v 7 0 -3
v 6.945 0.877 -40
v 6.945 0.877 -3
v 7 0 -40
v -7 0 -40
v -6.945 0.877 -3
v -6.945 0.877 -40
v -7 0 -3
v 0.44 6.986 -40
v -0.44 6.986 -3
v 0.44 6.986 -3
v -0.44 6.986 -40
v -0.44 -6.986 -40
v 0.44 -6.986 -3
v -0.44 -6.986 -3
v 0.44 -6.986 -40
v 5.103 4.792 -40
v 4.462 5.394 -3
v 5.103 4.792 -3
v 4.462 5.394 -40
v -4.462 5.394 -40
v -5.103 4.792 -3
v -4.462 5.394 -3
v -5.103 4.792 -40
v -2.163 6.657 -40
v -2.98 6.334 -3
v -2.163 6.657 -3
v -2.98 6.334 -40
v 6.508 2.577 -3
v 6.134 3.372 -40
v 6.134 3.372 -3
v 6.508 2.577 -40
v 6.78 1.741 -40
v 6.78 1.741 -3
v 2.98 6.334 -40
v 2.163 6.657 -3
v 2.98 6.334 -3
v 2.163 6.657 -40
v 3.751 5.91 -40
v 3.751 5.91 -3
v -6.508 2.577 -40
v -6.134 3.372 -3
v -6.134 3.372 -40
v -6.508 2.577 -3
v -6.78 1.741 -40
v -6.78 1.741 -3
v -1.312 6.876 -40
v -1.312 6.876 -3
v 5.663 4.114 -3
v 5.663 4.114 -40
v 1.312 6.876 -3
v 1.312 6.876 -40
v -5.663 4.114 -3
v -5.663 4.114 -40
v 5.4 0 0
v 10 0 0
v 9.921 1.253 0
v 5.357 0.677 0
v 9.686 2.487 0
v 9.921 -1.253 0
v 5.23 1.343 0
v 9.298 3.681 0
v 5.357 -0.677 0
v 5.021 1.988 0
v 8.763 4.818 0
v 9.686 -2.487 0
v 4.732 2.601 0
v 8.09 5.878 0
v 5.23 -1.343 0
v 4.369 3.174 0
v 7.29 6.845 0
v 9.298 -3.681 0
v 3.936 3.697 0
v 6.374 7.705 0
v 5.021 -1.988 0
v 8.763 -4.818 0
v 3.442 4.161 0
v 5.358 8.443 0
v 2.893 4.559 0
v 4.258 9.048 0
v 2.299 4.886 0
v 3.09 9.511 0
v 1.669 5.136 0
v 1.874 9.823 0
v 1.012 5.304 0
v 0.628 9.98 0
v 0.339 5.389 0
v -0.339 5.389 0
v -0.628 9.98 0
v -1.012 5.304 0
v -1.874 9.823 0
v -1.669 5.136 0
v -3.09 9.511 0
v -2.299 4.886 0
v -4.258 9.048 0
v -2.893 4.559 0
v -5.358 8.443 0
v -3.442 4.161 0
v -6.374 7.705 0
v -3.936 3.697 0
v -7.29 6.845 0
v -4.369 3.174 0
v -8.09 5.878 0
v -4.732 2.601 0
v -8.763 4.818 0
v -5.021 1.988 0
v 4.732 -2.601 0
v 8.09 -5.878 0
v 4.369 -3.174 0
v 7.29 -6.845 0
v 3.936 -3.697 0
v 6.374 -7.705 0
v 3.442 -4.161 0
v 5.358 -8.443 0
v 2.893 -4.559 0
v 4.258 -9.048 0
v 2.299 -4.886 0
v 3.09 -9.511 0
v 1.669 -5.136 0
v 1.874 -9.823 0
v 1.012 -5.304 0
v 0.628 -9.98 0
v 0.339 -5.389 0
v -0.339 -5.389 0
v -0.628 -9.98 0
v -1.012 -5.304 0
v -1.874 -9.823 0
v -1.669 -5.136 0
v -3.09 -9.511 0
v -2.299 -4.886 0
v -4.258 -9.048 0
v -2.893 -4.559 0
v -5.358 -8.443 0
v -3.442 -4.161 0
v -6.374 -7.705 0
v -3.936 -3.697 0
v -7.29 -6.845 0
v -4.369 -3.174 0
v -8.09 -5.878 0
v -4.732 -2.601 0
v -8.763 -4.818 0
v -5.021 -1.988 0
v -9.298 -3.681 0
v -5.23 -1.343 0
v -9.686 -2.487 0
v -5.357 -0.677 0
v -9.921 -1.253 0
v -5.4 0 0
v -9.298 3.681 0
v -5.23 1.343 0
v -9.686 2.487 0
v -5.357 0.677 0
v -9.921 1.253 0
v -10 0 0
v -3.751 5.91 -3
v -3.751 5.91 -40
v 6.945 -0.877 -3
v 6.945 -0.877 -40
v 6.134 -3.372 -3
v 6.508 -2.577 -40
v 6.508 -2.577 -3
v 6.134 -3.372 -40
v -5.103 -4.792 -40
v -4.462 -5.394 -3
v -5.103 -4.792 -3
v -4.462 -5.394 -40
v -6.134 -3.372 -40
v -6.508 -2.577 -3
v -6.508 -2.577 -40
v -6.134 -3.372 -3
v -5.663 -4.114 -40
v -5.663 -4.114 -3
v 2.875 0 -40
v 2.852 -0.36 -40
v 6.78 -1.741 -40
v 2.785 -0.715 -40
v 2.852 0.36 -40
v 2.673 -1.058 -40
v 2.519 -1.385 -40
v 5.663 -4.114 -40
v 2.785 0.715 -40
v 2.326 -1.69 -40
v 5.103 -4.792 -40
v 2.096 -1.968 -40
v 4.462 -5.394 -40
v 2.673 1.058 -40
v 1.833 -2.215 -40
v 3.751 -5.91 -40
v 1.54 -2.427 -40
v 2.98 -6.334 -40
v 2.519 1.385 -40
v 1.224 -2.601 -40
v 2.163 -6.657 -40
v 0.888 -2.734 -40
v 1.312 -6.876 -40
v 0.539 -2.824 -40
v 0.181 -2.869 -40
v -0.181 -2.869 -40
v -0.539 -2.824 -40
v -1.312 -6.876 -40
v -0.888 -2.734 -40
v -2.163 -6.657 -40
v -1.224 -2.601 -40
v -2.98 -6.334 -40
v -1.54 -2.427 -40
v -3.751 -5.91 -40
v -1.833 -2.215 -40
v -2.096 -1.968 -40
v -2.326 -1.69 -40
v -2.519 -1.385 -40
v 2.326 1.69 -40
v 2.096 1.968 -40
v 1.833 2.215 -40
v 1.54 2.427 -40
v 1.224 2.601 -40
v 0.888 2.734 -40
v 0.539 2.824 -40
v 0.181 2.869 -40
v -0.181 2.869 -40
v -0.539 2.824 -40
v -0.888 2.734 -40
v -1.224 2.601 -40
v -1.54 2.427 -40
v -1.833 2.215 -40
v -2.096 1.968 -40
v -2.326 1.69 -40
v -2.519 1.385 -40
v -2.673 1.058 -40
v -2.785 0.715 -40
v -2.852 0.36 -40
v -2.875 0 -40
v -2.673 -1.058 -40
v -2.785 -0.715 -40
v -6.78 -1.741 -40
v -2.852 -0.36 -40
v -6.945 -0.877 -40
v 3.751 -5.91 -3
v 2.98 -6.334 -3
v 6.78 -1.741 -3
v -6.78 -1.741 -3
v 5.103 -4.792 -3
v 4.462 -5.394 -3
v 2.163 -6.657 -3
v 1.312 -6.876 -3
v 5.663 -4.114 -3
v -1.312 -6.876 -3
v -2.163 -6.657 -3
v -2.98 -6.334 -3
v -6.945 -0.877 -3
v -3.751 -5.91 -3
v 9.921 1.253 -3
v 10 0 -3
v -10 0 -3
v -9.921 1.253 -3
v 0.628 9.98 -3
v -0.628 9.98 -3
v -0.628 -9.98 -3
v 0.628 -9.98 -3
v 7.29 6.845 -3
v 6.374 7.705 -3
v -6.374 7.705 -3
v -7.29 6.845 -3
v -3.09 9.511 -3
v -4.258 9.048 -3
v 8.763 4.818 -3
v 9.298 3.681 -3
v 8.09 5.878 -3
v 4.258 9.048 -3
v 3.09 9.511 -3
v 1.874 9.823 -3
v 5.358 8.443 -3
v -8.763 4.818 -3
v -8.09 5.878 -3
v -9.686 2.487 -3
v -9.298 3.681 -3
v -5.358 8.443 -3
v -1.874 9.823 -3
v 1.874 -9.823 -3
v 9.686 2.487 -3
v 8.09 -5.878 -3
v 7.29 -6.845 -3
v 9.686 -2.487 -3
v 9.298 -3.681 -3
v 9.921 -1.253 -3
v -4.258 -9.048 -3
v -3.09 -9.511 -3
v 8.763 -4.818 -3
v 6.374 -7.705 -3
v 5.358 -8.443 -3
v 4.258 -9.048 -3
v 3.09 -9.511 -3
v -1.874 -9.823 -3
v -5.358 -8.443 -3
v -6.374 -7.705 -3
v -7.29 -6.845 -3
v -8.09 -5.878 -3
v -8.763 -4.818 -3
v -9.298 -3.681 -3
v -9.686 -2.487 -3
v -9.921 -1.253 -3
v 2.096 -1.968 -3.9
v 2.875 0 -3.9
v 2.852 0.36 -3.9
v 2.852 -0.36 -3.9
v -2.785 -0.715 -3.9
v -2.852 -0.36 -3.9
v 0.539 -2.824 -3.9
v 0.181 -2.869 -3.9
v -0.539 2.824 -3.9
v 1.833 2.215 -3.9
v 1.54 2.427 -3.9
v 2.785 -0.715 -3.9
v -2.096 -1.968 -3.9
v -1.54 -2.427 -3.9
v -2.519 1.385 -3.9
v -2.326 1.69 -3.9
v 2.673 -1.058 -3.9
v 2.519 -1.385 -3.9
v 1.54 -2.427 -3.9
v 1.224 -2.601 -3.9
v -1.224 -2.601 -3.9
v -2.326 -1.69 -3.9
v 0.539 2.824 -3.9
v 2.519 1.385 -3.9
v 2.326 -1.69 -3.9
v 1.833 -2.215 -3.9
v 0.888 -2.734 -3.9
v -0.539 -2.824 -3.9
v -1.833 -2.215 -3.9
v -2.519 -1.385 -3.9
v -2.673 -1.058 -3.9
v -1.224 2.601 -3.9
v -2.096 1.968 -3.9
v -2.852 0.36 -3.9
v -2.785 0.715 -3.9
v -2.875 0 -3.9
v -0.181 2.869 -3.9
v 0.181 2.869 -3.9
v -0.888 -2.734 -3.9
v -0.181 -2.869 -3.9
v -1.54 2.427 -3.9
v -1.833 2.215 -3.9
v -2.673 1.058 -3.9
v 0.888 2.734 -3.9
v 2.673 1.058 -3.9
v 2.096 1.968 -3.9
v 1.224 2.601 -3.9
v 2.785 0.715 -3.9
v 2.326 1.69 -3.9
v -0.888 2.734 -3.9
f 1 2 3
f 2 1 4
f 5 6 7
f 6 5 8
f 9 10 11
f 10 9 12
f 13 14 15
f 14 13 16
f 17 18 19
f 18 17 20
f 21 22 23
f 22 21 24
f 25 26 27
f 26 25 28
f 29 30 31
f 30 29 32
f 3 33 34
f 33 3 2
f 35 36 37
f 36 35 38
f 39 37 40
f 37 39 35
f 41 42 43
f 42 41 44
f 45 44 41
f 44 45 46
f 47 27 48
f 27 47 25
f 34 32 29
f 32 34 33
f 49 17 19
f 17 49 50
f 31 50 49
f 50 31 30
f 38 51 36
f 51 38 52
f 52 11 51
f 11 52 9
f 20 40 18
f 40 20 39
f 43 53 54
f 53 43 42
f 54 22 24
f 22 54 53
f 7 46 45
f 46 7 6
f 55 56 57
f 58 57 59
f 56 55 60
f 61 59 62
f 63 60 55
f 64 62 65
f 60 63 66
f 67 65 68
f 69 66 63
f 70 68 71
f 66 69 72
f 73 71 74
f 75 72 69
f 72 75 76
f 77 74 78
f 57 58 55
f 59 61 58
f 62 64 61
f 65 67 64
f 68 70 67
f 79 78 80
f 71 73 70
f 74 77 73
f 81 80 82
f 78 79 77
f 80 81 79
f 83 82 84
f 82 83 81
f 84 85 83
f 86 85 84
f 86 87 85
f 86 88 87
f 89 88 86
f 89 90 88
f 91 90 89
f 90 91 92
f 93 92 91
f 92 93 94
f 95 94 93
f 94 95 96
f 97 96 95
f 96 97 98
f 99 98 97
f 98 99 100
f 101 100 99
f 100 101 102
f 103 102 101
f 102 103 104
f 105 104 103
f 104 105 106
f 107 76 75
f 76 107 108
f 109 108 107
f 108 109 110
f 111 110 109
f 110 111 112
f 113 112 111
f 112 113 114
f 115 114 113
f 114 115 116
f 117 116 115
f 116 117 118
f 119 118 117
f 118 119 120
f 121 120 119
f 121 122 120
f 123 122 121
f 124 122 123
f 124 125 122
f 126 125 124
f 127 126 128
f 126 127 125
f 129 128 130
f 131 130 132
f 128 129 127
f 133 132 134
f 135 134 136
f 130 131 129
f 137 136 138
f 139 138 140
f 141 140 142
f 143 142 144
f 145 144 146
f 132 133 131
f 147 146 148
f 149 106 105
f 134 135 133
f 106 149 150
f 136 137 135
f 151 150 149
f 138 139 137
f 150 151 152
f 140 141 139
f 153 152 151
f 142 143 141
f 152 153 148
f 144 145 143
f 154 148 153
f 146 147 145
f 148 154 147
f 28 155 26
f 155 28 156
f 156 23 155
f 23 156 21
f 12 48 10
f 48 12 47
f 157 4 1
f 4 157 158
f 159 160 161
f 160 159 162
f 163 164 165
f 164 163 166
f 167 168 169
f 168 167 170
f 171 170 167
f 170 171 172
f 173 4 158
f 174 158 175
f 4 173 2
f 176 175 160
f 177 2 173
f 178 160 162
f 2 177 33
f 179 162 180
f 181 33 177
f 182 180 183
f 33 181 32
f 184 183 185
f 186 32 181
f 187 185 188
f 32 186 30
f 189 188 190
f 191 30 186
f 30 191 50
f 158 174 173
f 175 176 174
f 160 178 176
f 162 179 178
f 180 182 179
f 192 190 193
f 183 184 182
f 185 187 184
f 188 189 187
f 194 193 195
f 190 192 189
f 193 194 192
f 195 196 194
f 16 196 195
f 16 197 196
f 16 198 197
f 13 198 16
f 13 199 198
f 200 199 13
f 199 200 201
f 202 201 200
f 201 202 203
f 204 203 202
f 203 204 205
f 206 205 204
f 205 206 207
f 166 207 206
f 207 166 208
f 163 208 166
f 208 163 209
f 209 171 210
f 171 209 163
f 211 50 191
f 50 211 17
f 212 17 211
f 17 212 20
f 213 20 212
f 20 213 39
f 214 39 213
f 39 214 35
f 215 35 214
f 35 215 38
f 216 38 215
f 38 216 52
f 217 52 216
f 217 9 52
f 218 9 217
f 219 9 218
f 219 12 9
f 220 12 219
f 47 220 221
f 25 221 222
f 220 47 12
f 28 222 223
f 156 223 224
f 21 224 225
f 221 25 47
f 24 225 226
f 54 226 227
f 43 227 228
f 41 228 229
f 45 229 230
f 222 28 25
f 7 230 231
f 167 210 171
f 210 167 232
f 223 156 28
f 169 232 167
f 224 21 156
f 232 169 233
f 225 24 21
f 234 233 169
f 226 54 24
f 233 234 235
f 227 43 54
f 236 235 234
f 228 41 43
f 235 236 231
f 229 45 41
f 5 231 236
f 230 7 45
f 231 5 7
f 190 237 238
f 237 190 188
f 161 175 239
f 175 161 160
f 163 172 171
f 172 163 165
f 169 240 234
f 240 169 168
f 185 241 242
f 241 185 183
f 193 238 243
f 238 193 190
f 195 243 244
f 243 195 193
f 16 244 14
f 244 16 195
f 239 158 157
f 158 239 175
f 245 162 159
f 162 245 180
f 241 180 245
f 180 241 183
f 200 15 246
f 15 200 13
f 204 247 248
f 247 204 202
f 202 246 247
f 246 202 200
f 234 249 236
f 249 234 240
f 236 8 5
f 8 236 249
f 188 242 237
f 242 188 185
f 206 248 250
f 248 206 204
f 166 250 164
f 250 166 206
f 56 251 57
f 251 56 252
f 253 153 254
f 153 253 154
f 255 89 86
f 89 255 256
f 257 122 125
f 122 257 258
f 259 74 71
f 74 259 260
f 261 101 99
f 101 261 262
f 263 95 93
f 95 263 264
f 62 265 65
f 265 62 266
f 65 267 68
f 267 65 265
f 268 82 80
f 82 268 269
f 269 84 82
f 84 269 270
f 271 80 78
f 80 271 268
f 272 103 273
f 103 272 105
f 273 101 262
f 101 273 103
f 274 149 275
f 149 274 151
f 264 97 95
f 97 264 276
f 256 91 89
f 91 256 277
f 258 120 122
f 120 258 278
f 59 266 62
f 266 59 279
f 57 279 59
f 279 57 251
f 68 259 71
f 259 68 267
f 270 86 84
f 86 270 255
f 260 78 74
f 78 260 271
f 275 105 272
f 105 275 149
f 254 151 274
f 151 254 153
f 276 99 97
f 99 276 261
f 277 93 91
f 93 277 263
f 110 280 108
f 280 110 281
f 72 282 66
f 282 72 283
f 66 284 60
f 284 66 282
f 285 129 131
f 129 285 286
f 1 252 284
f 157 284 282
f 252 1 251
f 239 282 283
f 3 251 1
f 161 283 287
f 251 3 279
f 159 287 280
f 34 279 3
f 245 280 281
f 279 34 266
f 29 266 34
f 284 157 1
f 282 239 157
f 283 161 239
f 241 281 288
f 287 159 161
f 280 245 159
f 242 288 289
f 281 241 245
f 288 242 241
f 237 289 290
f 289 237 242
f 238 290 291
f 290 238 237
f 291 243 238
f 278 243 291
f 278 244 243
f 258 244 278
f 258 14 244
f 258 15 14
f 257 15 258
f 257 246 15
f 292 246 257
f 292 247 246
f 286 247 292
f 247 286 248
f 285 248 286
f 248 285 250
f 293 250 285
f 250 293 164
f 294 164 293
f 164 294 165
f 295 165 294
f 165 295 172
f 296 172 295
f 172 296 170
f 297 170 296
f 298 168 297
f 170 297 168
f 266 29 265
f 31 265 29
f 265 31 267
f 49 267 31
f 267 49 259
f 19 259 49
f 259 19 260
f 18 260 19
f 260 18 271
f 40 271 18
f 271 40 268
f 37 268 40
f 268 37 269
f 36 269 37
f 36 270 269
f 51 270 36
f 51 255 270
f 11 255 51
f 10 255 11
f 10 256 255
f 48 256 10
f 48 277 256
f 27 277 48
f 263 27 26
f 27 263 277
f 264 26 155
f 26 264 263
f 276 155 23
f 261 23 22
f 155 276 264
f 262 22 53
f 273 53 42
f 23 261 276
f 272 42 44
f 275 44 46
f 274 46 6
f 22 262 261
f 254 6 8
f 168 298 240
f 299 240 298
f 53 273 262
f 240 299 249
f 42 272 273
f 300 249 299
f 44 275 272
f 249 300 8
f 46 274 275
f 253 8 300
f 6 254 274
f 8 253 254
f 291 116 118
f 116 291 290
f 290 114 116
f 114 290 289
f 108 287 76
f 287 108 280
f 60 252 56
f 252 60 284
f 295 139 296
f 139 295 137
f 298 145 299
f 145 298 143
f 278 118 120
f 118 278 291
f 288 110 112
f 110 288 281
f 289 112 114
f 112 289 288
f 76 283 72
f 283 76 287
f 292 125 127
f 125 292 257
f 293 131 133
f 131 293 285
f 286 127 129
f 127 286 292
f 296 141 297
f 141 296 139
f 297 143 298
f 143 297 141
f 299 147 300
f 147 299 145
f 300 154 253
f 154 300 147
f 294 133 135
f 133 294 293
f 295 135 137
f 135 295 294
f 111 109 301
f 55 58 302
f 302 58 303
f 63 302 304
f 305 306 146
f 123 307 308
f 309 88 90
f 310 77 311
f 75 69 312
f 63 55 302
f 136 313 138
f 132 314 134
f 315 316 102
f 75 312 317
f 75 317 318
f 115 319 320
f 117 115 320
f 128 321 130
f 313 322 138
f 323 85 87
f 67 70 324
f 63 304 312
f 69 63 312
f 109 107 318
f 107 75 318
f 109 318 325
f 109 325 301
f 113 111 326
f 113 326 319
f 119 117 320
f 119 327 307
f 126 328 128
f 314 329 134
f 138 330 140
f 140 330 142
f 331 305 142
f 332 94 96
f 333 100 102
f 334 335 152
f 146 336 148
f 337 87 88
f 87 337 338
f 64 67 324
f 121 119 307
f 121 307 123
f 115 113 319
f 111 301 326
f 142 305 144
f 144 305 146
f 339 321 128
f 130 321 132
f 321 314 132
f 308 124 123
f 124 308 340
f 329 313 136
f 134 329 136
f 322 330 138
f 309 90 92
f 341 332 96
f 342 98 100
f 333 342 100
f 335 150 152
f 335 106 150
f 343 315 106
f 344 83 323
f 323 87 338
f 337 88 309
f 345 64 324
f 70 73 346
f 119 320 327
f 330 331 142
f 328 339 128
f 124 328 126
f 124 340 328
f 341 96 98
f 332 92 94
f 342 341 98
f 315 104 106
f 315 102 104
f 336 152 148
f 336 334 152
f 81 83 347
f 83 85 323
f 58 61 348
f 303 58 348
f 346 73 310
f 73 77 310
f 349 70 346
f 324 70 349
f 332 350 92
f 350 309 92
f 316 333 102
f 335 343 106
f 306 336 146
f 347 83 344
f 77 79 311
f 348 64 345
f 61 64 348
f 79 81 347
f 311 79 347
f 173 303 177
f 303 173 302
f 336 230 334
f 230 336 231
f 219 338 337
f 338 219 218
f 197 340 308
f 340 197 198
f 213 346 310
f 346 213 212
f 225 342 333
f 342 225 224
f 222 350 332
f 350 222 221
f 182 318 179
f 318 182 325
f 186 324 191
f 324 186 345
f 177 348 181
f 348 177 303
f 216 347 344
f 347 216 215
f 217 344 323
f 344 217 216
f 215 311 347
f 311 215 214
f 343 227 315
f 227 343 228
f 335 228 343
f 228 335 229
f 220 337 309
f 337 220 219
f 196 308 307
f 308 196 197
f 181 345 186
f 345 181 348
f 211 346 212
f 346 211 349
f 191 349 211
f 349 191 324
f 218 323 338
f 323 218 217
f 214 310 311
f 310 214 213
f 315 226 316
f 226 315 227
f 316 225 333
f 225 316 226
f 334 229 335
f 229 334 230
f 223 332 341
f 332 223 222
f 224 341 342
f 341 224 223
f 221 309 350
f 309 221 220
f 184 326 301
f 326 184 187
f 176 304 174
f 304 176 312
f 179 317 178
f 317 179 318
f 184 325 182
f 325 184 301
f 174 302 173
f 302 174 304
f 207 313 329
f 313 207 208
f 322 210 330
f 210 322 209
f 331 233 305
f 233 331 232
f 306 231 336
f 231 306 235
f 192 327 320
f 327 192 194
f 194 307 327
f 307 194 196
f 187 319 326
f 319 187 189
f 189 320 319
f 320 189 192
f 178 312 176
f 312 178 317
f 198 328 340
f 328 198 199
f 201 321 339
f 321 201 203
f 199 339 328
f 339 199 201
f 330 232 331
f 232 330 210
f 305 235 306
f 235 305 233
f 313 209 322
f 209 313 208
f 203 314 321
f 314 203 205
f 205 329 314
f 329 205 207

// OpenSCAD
$fn = 50;


difference() {
	union() {
		translate(v = [0, 0, -40.0000000000]) {
			cylinder(h = 40, r = 7.0000000000);
		}
		translate(v = [0, 0, -3.0000000000]) {
			cylinder(h = 3, r = 10.0000000000);
		}
	}
	union() {
		translate(v = [0, 0, 0]) {
			rotate(a = [0, 0, 0]) {
				difference() {
					union() {
						#translate(v = [0, 0, -40.0000000000]) {
							cylinder(h = 40, r = 2.6000000000);
						}
						#translate(v = [0, 0, -3.9000000000]) {
							cylinder(h = 3.9000000000, r1 = 2.8750000000, r2 = 5.4000000000);
						}
						#translate(v = [0, 0, -40.0000000000]) {
							cylinder(h = 40, r = 2.8750000000);
						}
						#translate(v = [0, 0, -40.0000000000]) {
							cylinder(h = 40, r = 2.6000000000);
						}
					}
					union();
				}
			}
		}
	}
}
